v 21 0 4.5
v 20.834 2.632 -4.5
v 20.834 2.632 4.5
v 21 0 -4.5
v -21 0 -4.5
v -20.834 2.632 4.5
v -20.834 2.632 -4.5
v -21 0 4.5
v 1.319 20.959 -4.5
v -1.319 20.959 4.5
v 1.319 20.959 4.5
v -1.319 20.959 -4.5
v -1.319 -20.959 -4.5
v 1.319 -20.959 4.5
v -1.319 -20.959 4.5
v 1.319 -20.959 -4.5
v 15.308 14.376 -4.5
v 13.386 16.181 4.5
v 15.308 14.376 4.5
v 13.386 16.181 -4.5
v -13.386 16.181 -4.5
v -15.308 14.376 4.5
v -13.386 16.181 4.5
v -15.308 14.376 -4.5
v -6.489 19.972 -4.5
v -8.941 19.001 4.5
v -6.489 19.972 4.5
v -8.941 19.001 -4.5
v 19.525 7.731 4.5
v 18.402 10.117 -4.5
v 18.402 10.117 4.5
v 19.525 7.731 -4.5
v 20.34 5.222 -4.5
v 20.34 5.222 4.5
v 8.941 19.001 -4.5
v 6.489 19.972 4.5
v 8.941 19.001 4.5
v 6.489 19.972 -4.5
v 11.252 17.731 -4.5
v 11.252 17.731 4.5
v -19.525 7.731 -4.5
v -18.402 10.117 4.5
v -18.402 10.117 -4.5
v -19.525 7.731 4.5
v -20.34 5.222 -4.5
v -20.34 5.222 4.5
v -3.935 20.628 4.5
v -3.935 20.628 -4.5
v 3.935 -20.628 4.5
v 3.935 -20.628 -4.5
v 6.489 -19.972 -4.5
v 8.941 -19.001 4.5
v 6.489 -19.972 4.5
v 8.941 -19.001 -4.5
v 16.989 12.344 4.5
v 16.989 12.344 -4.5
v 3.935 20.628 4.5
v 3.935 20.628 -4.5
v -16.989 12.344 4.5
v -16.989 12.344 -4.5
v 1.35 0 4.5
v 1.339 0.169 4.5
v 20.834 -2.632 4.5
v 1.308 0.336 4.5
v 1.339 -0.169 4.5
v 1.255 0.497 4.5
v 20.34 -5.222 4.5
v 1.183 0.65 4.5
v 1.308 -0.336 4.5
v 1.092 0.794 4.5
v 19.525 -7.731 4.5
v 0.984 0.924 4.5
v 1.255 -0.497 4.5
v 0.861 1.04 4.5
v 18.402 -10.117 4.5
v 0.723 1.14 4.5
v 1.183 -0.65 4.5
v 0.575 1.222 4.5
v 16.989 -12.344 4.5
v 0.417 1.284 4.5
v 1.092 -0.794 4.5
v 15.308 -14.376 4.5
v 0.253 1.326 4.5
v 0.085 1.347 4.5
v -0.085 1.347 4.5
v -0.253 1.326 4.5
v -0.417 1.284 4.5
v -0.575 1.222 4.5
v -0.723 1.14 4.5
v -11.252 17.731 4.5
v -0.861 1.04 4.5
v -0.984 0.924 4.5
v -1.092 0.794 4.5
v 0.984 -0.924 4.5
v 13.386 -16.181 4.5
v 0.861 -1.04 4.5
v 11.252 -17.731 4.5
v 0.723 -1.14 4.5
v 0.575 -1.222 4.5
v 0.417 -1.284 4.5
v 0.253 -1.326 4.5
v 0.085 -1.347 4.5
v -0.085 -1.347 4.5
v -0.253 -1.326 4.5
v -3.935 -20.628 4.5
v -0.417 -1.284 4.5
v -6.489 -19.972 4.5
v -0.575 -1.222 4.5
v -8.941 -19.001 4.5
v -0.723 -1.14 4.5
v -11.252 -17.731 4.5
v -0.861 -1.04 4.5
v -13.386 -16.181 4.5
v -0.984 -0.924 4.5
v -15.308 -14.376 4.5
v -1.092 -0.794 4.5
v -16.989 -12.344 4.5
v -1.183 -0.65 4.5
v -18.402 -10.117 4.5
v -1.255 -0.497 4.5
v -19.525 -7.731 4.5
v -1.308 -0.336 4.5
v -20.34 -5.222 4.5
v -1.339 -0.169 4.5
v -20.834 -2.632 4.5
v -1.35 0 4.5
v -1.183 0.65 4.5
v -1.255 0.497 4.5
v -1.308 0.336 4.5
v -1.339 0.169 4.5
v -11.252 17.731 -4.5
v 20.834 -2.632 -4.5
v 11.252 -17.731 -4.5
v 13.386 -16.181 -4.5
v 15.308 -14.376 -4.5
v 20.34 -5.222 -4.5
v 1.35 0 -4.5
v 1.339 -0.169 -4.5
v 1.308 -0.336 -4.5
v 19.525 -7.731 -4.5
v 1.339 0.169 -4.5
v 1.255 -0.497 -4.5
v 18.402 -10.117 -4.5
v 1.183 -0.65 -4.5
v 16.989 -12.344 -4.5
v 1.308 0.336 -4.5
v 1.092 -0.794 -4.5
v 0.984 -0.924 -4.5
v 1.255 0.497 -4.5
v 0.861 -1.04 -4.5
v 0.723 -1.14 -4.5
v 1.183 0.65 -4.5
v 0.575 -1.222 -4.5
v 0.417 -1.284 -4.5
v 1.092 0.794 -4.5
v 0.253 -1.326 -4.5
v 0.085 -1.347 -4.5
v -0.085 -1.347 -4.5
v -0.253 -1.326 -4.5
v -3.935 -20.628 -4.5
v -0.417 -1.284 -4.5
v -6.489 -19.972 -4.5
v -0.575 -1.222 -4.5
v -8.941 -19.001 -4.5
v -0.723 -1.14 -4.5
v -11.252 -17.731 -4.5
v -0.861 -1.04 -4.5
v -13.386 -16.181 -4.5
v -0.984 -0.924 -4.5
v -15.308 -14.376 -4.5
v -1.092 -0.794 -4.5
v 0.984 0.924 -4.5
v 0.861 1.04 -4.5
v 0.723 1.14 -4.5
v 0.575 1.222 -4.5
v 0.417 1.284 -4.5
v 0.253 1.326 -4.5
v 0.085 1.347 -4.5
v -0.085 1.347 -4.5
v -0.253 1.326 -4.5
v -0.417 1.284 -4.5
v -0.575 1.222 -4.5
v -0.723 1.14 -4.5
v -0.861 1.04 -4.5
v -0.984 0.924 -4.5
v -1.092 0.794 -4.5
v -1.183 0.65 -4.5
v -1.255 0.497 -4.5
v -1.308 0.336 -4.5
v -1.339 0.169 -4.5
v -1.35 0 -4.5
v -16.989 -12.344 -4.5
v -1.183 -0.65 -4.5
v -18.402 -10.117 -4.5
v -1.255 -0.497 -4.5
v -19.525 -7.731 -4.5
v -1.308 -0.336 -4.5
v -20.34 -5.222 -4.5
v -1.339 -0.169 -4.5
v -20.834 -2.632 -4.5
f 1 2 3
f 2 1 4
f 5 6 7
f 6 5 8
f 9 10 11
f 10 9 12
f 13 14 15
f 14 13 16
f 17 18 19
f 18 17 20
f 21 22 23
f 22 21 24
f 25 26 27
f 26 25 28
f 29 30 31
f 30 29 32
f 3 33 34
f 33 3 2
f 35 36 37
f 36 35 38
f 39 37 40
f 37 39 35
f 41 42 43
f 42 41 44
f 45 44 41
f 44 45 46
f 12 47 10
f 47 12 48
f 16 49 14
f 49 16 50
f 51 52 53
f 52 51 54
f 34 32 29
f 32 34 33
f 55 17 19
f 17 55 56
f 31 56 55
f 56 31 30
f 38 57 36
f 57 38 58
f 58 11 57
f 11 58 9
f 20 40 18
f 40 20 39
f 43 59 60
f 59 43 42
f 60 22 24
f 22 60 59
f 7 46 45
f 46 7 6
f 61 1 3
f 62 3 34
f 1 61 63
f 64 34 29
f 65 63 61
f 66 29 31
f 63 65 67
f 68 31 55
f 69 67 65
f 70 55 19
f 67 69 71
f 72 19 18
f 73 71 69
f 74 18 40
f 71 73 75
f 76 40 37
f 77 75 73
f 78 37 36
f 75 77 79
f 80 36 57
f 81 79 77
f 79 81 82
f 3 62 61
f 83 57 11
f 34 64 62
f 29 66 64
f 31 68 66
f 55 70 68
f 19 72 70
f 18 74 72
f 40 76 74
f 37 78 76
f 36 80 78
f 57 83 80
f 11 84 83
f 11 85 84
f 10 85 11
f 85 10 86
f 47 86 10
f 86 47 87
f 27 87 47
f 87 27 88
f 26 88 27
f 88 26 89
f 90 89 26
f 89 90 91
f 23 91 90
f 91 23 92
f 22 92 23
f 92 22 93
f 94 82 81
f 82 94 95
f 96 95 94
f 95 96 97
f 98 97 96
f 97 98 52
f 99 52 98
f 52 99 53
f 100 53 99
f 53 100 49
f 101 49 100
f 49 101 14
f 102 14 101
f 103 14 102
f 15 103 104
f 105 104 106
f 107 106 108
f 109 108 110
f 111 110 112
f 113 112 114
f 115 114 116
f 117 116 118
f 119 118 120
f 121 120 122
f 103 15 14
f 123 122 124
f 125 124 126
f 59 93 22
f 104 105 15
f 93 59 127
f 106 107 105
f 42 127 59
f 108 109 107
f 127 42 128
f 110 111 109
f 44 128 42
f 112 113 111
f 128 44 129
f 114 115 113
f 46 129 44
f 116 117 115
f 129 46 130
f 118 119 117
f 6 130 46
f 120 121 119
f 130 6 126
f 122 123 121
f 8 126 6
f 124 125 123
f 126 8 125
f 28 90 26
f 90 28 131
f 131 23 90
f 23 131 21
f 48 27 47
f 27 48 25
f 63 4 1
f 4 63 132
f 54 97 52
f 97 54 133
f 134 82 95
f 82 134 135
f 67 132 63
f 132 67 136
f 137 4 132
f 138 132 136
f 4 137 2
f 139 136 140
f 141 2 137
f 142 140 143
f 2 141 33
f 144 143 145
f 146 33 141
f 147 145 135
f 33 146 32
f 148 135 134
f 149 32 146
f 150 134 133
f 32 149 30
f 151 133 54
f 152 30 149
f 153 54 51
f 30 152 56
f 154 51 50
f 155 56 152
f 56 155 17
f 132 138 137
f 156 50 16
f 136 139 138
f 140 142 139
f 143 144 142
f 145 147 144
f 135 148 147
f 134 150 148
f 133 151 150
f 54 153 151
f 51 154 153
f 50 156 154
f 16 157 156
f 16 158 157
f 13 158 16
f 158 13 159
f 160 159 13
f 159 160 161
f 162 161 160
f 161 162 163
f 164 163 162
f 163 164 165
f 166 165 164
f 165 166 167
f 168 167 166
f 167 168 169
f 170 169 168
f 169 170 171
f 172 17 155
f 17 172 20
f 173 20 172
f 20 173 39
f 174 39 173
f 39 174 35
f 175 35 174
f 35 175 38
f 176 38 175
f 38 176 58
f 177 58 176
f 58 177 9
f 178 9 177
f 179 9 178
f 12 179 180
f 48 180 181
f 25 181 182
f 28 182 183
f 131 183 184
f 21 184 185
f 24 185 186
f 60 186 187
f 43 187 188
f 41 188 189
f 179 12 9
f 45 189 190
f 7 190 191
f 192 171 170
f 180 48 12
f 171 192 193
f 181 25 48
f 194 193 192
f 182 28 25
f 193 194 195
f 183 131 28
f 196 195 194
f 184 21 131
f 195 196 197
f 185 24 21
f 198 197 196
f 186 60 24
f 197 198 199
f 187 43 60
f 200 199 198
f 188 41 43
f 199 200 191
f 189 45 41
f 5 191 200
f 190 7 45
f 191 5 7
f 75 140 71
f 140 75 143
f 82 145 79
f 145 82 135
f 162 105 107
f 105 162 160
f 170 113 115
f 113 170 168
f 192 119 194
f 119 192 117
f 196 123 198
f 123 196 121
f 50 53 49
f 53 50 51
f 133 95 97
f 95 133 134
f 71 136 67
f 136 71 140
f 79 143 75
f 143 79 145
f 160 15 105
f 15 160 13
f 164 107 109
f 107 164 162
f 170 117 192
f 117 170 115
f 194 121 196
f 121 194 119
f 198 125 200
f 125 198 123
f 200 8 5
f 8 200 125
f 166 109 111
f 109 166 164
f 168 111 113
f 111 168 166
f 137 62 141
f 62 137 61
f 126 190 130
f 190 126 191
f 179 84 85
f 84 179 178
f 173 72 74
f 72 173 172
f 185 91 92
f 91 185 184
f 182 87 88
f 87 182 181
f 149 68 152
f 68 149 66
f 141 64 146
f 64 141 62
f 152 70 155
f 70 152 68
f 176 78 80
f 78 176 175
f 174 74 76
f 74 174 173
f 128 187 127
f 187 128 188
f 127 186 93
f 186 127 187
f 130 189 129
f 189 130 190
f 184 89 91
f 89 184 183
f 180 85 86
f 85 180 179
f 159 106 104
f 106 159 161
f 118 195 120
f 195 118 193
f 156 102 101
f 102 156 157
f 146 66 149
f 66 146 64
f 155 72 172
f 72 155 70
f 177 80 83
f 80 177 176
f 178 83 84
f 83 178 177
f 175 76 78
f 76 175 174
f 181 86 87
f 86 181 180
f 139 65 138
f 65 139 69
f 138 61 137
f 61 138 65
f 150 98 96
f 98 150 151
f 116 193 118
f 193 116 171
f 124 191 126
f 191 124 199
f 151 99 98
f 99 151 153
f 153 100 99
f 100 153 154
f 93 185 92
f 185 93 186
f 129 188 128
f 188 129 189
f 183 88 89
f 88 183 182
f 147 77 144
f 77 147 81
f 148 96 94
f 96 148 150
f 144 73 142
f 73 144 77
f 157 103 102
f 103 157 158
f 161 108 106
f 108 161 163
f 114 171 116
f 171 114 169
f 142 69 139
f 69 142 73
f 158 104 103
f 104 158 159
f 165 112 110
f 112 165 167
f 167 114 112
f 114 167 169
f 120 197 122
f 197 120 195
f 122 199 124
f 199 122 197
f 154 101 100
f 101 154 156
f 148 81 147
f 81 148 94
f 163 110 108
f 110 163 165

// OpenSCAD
$fn = 50;


difference() {
	union() {
		translate(v = [0, 0, -4.5000000000]) {
			cylinder(h = 9, r = 21.0000000000);
		}
	}
	union() {
		translate(v = [0, 0, -100.0000000000]) {
			cylinder(h = 200, r = 1.3500000000);
		}
	}
}
